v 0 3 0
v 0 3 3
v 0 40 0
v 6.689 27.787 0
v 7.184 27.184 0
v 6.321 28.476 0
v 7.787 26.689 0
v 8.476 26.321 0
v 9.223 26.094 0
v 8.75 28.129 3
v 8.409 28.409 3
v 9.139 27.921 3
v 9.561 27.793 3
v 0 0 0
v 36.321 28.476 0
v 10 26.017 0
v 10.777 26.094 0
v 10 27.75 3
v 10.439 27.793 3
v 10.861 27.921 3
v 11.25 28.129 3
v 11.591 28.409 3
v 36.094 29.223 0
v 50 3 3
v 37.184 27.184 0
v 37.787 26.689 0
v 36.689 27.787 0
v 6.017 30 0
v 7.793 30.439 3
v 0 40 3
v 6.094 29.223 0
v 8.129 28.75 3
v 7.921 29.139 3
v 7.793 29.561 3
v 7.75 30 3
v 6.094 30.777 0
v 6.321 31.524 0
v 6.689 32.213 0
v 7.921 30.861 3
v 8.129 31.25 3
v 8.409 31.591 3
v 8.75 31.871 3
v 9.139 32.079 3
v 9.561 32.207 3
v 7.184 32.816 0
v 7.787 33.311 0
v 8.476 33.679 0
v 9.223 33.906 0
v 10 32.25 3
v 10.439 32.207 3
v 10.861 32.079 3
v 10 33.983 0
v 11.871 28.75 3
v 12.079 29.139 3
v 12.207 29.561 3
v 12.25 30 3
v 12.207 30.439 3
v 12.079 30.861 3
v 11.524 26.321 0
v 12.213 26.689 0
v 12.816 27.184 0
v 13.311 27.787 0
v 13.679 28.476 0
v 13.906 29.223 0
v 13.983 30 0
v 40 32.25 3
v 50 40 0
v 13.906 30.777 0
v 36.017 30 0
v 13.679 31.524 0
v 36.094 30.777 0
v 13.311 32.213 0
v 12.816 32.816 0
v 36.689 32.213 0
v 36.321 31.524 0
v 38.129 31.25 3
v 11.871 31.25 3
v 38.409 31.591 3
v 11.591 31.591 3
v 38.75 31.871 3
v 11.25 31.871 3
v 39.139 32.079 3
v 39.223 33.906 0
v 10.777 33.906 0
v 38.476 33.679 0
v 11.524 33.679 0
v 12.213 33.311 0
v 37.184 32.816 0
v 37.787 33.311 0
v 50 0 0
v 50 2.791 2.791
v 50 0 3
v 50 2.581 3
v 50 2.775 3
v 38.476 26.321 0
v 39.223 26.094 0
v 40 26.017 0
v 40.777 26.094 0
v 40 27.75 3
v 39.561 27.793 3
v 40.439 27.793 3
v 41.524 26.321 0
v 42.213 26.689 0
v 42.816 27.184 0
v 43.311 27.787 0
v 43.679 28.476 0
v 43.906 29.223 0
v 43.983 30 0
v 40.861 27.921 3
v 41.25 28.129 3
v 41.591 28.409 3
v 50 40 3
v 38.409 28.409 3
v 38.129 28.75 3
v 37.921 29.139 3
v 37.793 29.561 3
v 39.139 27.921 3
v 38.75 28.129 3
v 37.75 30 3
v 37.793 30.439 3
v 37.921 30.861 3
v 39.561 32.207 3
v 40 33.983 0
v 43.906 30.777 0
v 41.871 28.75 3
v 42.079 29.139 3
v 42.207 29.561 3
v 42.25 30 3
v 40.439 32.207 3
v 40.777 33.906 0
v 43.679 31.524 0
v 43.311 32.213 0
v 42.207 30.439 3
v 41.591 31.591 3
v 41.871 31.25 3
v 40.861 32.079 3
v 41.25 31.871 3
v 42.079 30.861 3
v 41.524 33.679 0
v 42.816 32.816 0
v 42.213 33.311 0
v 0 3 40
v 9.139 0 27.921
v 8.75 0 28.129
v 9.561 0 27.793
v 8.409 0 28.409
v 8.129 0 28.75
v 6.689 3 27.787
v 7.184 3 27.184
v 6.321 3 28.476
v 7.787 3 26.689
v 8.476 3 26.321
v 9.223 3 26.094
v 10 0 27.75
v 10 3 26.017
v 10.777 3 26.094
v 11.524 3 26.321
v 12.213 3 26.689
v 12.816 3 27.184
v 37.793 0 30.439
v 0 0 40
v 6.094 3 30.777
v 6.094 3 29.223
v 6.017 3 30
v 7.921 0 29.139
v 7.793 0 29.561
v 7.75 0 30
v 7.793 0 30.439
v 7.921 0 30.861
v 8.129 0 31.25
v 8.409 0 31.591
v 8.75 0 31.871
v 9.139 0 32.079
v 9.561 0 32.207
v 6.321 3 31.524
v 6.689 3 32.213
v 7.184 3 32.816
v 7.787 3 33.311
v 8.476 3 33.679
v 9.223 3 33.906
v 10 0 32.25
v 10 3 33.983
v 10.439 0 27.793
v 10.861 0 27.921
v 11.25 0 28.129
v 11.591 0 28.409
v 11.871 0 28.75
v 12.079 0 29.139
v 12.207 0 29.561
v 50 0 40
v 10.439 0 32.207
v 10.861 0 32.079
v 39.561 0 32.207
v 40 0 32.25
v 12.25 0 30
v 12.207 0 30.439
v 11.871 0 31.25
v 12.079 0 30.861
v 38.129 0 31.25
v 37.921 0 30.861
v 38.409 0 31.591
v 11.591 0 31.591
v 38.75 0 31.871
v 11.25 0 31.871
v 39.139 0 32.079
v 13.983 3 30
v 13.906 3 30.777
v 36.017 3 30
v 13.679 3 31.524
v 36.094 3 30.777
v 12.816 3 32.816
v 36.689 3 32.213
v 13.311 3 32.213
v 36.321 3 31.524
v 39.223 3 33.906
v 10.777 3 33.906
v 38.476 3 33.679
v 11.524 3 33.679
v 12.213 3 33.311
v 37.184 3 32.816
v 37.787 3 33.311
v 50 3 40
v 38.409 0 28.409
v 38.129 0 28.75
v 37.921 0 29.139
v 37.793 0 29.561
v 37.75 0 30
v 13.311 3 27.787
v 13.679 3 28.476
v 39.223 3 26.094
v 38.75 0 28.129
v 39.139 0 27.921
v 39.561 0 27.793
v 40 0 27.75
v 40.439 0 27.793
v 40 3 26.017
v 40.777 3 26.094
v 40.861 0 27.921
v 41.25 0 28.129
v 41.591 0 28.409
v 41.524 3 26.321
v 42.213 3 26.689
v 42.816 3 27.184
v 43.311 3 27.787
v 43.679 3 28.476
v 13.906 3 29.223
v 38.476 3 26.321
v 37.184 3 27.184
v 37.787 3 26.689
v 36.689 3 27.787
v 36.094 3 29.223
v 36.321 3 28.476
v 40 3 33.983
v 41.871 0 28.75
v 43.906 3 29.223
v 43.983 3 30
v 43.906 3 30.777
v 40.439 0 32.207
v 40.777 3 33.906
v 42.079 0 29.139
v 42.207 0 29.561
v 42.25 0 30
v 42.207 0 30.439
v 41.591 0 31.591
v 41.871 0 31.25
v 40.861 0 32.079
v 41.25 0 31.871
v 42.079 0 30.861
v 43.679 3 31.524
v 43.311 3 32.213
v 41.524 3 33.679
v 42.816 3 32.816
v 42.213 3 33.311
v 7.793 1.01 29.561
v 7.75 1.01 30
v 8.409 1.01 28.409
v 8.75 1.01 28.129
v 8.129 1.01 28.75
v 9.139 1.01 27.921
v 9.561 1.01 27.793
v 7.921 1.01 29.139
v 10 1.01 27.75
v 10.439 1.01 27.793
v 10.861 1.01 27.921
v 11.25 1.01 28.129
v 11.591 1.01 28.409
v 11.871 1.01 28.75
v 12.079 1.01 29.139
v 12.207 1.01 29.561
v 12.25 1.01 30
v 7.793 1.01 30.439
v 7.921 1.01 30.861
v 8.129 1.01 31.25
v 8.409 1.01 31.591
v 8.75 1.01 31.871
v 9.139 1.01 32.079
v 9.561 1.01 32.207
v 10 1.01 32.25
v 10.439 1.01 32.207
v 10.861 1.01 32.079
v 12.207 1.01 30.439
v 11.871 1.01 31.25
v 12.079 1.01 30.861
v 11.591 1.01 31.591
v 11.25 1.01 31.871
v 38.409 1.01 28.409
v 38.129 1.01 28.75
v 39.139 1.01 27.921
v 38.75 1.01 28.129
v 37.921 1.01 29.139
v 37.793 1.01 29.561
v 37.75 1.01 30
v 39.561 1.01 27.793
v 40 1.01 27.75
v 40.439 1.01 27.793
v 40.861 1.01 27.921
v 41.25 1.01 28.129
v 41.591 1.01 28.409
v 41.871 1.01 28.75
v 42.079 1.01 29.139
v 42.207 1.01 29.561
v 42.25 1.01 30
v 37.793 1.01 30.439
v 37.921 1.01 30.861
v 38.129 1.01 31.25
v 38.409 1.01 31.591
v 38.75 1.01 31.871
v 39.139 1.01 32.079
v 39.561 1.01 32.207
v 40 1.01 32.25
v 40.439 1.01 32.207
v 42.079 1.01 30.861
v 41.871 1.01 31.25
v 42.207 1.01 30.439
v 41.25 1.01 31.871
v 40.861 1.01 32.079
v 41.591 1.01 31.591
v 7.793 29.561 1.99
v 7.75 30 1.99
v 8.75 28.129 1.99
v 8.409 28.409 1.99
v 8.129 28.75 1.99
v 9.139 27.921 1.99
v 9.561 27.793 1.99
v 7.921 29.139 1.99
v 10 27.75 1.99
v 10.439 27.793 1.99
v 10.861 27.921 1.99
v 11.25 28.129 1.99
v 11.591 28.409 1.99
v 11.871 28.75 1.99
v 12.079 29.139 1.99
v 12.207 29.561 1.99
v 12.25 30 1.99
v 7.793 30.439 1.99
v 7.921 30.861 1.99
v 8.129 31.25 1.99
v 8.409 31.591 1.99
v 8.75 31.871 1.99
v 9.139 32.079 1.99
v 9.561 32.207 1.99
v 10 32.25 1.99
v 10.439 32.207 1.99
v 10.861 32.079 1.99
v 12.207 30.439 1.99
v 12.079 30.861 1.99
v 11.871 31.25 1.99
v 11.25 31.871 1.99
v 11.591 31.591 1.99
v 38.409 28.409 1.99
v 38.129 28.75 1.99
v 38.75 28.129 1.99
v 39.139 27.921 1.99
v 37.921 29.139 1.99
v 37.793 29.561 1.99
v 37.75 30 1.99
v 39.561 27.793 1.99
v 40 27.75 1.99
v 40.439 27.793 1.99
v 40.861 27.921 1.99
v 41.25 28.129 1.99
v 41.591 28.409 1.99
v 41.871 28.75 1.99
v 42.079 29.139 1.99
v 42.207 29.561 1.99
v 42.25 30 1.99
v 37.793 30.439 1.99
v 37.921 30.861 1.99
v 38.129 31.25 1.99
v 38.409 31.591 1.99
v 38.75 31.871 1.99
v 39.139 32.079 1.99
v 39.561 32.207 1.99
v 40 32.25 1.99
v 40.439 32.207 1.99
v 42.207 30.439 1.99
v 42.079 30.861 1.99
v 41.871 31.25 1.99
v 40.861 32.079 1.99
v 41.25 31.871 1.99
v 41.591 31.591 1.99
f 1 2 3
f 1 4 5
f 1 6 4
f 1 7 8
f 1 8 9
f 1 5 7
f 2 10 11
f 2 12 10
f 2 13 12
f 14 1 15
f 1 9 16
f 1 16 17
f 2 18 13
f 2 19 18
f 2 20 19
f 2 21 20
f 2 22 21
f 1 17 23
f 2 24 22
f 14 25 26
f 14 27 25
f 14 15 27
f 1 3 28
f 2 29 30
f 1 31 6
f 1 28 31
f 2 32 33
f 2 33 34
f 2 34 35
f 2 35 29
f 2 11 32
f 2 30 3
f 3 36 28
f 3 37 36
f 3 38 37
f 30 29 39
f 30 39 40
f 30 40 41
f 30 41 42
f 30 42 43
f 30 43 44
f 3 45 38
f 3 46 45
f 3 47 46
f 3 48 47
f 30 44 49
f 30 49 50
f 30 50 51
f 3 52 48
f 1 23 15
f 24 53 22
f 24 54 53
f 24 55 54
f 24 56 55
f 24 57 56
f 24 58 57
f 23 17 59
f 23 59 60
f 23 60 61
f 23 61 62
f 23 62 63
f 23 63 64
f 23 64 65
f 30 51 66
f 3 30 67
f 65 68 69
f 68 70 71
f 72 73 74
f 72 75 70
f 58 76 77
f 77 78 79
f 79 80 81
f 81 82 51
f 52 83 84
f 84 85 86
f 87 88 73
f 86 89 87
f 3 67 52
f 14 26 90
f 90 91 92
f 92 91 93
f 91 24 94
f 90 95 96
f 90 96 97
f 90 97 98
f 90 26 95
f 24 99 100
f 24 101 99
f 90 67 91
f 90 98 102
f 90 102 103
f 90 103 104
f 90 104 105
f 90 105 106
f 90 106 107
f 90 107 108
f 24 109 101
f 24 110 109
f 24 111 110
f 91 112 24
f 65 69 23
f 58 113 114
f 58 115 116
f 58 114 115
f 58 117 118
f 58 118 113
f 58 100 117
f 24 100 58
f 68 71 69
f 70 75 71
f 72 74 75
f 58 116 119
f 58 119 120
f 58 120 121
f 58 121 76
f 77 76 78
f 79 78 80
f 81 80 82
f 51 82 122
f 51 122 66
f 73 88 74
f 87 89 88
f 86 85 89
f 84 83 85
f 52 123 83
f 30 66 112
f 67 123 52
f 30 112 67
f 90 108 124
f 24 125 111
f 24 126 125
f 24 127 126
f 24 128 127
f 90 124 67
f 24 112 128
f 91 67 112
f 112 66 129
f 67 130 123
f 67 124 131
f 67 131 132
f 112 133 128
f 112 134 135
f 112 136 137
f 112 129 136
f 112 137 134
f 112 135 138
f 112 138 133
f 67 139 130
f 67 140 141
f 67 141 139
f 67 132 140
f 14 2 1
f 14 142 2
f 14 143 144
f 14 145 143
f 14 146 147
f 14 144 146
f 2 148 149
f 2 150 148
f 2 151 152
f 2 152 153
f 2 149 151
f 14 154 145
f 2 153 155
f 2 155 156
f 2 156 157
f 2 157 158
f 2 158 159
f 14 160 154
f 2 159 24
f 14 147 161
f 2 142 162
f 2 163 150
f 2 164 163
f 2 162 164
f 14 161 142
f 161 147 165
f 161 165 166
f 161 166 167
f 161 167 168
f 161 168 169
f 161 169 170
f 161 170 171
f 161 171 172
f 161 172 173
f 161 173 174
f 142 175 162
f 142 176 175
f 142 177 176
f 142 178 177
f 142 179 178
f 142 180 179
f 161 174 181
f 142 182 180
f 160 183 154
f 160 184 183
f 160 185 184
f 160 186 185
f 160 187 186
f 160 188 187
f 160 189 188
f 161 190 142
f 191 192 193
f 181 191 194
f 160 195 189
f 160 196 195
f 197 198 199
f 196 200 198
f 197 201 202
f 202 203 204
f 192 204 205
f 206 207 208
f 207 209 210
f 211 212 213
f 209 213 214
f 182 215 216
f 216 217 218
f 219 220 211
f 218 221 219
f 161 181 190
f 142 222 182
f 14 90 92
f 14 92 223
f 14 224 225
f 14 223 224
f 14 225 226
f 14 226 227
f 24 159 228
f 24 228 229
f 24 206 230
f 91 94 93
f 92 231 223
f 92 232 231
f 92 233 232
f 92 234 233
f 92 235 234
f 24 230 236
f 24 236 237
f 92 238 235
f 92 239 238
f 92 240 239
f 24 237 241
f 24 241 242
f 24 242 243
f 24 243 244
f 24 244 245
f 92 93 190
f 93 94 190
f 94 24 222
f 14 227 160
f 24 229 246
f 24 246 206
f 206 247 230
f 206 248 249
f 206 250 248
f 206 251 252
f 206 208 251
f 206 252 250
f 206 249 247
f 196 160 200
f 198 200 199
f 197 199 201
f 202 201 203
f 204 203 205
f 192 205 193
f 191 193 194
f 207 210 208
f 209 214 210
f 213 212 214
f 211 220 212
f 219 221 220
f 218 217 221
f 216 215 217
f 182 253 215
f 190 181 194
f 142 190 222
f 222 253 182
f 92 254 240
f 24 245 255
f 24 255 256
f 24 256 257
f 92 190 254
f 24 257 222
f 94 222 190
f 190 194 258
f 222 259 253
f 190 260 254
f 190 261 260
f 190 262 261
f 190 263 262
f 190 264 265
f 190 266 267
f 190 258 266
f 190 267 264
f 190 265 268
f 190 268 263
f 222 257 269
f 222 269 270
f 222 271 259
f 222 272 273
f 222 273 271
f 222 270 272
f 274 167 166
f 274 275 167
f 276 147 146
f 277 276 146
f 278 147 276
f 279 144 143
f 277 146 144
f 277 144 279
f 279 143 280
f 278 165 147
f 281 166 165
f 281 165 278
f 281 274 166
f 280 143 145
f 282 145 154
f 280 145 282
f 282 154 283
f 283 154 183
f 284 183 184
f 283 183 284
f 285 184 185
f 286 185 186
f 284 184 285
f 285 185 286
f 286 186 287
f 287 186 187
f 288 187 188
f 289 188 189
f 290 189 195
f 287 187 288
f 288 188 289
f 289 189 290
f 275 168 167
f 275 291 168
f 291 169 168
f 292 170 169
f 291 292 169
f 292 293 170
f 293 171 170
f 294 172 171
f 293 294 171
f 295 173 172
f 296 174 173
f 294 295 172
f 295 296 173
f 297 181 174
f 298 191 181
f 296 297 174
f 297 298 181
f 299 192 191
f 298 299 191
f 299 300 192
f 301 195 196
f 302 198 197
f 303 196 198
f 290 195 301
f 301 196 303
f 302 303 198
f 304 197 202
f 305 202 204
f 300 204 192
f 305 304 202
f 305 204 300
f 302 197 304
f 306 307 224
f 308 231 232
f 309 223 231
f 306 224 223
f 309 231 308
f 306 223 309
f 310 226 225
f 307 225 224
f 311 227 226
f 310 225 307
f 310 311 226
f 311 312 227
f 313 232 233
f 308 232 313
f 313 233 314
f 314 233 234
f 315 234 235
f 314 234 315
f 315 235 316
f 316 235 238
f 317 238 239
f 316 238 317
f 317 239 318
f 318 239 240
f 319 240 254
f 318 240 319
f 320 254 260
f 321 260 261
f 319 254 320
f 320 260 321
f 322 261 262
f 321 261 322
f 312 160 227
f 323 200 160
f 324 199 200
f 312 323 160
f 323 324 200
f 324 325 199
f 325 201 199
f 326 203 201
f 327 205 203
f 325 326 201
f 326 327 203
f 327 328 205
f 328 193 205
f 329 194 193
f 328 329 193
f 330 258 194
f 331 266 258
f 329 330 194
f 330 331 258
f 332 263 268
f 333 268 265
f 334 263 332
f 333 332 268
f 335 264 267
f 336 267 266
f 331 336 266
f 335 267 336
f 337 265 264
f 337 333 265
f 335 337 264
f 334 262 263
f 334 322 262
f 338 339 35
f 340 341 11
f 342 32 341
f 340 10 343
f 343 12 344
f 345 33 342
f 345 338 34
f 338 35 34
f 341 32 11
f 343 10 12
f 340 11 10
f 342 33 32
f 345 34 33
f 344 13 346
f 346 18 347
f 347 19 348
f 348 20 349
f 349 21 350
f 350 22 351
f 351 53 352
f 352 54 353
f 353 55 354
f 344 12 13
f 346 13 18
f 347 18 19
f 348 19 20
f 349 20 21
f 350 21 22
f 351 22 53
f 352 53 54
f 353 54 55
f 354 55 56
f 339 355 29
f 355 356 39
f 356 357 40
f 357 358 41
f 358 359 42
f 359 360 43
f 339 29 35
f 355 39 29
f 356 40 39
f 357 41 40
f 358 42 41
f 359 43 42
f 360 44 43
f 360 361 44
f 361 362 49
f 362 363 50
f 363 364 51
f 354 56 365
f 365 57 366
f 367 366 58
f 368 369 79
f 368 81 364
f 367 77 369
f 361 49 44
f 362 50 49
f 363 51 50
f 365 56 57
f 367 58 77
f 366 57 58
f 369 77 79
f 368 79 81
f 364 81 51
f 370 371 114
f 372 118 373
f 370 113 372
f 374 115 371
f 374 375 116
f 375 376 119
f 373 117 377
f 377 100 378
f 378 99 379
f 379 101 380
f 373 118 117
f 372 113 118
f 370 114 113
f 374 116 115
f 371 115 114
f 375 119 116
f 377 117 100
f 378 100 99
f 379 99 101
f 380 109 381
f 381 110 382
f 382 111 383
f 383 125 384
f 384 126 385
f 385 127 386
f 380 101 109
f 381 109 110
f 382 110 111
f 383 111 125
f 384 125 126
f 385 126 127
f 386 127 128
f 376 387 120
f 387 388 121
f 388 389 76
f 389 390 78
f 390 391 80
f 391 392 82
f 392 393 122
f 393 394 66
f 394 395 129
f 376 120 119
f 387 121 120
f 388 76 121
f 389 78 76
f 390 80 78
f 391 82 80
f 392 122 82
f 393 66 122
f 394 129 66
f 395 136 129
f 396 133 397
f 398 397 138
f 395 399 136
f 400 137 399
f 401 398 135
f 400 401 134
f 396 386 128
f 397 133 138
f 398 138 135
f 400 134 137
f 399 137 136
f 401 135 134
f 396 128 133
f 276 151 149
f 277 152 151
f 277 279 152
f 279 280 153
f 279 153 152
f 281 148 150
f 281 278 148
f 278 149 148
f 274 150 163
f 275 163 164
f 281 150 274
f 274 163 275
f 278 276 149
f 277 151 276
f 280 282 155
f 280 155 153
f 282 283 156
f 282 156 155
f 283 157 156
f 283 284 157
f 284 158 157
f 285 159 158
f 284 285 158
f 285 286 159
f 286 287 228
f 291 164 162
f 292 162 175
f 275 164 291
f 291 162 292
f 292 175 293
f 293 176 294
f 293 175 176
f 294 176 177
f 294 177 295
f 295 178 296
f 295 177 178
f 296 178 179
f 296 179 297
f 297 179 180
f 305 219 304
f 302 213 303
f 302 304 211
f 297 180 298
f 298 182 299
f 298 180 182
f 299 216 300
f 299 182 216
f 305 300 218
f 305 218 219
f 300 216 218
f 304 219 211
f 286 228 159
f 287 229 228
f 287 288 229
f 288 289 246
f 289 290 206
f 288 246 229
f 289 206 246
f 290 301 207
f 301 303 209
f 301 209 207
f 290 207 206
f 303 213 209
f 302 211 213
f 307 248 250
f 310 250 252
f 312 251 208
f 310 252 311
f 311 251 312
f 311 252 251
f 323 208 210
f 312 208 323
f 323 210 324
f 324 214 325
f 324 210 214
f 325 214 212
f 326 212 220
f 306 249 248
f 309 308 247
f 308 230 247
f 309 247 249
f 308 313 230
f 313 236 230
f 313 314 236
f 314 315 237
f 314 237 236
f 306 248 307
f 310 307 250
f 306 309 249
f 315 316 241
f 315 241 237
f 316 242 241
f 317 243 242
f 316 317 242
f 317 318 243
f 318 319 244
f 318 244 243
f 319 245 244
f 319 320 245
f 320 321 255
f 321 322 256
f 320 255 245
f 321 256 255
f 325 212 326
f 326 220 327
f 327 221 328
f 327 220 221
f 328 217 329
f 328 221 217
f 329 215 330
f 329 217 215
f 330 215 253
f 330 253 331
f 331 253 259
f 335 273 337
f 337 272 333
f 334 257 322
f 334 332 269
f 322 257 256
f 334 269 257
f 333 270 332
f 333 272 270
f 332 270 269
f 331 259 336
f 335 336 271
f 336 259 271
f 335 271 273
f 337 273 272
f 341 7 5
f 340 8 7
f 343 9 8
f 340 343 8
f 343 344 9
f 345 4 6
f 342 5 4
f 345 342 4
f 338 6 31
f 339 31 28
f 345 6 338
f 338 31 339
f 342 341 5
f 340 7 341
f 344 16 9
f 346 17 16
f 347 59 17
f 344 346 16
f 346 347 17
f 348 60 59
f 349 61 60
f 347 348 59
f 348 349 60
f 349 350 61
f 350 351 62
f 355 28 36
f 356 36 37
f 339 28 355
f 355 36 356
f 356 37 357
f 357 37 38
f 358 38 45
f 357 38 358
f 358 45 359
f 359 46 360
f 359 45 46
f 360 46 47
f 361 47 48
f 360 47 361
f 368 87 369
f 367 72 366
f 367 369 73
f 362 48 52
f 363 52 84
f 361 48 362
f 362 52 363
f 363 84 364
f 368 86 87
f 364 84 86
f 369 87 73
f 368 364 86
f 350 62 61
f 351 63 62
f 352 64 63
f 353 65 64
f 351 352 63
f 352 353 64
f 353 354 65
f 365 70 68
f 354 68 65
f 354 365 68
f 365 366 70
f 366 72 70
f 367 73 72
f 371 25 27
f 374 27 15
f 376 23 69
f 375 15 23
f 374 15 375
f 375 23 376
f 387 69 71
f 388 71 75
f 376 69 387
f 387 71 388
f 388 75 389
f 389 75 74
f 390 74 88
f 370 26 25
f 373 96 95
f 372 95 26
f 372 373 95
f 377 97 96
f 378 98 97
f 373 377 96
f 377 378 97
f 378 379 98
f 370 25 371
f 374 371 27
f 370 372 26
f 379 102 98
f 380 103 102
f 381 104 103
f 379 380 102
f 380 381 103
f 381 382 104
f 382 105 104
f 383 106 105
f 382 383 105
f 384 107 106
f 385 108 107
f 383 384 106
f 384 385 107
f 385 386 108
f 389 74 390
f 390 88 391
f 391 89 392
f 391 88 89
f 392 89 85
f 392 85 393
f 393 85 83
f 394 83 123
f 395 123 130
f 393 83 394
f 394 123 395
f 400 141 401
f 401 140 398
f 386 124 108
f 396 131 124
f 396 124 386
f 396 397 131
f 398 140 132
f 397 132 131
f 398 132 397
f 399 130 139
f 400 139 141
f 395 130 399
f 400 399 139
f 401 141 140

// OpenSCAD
// L-bracket with countersunk holes

// Parameters
flange_width = 50;      // X direction
flange_depth = 40;      // Y direction for horizontal, Z direction for vertical
thickness = 3;

// Countersunk hole parameters
hole_diameter = 4.5;    // M4 through hole
countersink_diameter = 8;
countersink_depth = 2;
edge_distance = 10;     // Distance from edge to hole center

// Module for countersunk hole (countersink at Z+ side)
module countersunk_hole(h) {
    union() {
        // Through hole
        cylinder(h = h + 0.02, d = hole_diameter, center = true, $fn = 32);
        // Countersink (cone) at top (Z+ side)
        translate([0, 0, h/2 - countersink_depth + 0.01])
            cylinder(h = countersink_depth + 0.01, d1 = hole_diameter, d2 = countersink_diameter, $fn = 32);
    }
}

// Hole X positions (symmetric about center line, 10mm from left and right edges)
hole_x_positions = [edge_distance, flange_width - edge_distance];

difference() {
    union() {
        // Horizontal flange: bottom surface at Z=0, top surface at Z=thickness
        // Extends in +Y direction from origin
        cube([flange_width, flange_depth, thickness]);
        
        // Vertical flange: front surface at Y=0, back surface at Y=thickness
        // Extends in +Z direction from origin
        cube([flange_width, thickness, flange_depth]);
    }
    
    // Countersunk holes on horizontal flange
    // Holes centered at Y = flange_depth - edge_distance (10mm from far edge)
    // Countersink on bottom (Z=0 side, outside where bolt head sits)
    for (x = hole_x_positions) {
        translate([x, flange_depth - edge_distance, thickness/2])
            rotate([180, 0, 0])
                countersunk_hole(thickness);
    }
    
    // Countersunk holes on vertical flange
    // Holes centered at Z = flange_depth - edge_distance (10mm from top edge)
    // Countersink on front (Y=0 side, outside where bolt head sits)
    for (x = hole_x_positions) {
        translate([x, thickness/2, flange_depth - edge_distance])
            rotate([-90, 0, 0])
                countersunk_hole(thickness);
    }
}
